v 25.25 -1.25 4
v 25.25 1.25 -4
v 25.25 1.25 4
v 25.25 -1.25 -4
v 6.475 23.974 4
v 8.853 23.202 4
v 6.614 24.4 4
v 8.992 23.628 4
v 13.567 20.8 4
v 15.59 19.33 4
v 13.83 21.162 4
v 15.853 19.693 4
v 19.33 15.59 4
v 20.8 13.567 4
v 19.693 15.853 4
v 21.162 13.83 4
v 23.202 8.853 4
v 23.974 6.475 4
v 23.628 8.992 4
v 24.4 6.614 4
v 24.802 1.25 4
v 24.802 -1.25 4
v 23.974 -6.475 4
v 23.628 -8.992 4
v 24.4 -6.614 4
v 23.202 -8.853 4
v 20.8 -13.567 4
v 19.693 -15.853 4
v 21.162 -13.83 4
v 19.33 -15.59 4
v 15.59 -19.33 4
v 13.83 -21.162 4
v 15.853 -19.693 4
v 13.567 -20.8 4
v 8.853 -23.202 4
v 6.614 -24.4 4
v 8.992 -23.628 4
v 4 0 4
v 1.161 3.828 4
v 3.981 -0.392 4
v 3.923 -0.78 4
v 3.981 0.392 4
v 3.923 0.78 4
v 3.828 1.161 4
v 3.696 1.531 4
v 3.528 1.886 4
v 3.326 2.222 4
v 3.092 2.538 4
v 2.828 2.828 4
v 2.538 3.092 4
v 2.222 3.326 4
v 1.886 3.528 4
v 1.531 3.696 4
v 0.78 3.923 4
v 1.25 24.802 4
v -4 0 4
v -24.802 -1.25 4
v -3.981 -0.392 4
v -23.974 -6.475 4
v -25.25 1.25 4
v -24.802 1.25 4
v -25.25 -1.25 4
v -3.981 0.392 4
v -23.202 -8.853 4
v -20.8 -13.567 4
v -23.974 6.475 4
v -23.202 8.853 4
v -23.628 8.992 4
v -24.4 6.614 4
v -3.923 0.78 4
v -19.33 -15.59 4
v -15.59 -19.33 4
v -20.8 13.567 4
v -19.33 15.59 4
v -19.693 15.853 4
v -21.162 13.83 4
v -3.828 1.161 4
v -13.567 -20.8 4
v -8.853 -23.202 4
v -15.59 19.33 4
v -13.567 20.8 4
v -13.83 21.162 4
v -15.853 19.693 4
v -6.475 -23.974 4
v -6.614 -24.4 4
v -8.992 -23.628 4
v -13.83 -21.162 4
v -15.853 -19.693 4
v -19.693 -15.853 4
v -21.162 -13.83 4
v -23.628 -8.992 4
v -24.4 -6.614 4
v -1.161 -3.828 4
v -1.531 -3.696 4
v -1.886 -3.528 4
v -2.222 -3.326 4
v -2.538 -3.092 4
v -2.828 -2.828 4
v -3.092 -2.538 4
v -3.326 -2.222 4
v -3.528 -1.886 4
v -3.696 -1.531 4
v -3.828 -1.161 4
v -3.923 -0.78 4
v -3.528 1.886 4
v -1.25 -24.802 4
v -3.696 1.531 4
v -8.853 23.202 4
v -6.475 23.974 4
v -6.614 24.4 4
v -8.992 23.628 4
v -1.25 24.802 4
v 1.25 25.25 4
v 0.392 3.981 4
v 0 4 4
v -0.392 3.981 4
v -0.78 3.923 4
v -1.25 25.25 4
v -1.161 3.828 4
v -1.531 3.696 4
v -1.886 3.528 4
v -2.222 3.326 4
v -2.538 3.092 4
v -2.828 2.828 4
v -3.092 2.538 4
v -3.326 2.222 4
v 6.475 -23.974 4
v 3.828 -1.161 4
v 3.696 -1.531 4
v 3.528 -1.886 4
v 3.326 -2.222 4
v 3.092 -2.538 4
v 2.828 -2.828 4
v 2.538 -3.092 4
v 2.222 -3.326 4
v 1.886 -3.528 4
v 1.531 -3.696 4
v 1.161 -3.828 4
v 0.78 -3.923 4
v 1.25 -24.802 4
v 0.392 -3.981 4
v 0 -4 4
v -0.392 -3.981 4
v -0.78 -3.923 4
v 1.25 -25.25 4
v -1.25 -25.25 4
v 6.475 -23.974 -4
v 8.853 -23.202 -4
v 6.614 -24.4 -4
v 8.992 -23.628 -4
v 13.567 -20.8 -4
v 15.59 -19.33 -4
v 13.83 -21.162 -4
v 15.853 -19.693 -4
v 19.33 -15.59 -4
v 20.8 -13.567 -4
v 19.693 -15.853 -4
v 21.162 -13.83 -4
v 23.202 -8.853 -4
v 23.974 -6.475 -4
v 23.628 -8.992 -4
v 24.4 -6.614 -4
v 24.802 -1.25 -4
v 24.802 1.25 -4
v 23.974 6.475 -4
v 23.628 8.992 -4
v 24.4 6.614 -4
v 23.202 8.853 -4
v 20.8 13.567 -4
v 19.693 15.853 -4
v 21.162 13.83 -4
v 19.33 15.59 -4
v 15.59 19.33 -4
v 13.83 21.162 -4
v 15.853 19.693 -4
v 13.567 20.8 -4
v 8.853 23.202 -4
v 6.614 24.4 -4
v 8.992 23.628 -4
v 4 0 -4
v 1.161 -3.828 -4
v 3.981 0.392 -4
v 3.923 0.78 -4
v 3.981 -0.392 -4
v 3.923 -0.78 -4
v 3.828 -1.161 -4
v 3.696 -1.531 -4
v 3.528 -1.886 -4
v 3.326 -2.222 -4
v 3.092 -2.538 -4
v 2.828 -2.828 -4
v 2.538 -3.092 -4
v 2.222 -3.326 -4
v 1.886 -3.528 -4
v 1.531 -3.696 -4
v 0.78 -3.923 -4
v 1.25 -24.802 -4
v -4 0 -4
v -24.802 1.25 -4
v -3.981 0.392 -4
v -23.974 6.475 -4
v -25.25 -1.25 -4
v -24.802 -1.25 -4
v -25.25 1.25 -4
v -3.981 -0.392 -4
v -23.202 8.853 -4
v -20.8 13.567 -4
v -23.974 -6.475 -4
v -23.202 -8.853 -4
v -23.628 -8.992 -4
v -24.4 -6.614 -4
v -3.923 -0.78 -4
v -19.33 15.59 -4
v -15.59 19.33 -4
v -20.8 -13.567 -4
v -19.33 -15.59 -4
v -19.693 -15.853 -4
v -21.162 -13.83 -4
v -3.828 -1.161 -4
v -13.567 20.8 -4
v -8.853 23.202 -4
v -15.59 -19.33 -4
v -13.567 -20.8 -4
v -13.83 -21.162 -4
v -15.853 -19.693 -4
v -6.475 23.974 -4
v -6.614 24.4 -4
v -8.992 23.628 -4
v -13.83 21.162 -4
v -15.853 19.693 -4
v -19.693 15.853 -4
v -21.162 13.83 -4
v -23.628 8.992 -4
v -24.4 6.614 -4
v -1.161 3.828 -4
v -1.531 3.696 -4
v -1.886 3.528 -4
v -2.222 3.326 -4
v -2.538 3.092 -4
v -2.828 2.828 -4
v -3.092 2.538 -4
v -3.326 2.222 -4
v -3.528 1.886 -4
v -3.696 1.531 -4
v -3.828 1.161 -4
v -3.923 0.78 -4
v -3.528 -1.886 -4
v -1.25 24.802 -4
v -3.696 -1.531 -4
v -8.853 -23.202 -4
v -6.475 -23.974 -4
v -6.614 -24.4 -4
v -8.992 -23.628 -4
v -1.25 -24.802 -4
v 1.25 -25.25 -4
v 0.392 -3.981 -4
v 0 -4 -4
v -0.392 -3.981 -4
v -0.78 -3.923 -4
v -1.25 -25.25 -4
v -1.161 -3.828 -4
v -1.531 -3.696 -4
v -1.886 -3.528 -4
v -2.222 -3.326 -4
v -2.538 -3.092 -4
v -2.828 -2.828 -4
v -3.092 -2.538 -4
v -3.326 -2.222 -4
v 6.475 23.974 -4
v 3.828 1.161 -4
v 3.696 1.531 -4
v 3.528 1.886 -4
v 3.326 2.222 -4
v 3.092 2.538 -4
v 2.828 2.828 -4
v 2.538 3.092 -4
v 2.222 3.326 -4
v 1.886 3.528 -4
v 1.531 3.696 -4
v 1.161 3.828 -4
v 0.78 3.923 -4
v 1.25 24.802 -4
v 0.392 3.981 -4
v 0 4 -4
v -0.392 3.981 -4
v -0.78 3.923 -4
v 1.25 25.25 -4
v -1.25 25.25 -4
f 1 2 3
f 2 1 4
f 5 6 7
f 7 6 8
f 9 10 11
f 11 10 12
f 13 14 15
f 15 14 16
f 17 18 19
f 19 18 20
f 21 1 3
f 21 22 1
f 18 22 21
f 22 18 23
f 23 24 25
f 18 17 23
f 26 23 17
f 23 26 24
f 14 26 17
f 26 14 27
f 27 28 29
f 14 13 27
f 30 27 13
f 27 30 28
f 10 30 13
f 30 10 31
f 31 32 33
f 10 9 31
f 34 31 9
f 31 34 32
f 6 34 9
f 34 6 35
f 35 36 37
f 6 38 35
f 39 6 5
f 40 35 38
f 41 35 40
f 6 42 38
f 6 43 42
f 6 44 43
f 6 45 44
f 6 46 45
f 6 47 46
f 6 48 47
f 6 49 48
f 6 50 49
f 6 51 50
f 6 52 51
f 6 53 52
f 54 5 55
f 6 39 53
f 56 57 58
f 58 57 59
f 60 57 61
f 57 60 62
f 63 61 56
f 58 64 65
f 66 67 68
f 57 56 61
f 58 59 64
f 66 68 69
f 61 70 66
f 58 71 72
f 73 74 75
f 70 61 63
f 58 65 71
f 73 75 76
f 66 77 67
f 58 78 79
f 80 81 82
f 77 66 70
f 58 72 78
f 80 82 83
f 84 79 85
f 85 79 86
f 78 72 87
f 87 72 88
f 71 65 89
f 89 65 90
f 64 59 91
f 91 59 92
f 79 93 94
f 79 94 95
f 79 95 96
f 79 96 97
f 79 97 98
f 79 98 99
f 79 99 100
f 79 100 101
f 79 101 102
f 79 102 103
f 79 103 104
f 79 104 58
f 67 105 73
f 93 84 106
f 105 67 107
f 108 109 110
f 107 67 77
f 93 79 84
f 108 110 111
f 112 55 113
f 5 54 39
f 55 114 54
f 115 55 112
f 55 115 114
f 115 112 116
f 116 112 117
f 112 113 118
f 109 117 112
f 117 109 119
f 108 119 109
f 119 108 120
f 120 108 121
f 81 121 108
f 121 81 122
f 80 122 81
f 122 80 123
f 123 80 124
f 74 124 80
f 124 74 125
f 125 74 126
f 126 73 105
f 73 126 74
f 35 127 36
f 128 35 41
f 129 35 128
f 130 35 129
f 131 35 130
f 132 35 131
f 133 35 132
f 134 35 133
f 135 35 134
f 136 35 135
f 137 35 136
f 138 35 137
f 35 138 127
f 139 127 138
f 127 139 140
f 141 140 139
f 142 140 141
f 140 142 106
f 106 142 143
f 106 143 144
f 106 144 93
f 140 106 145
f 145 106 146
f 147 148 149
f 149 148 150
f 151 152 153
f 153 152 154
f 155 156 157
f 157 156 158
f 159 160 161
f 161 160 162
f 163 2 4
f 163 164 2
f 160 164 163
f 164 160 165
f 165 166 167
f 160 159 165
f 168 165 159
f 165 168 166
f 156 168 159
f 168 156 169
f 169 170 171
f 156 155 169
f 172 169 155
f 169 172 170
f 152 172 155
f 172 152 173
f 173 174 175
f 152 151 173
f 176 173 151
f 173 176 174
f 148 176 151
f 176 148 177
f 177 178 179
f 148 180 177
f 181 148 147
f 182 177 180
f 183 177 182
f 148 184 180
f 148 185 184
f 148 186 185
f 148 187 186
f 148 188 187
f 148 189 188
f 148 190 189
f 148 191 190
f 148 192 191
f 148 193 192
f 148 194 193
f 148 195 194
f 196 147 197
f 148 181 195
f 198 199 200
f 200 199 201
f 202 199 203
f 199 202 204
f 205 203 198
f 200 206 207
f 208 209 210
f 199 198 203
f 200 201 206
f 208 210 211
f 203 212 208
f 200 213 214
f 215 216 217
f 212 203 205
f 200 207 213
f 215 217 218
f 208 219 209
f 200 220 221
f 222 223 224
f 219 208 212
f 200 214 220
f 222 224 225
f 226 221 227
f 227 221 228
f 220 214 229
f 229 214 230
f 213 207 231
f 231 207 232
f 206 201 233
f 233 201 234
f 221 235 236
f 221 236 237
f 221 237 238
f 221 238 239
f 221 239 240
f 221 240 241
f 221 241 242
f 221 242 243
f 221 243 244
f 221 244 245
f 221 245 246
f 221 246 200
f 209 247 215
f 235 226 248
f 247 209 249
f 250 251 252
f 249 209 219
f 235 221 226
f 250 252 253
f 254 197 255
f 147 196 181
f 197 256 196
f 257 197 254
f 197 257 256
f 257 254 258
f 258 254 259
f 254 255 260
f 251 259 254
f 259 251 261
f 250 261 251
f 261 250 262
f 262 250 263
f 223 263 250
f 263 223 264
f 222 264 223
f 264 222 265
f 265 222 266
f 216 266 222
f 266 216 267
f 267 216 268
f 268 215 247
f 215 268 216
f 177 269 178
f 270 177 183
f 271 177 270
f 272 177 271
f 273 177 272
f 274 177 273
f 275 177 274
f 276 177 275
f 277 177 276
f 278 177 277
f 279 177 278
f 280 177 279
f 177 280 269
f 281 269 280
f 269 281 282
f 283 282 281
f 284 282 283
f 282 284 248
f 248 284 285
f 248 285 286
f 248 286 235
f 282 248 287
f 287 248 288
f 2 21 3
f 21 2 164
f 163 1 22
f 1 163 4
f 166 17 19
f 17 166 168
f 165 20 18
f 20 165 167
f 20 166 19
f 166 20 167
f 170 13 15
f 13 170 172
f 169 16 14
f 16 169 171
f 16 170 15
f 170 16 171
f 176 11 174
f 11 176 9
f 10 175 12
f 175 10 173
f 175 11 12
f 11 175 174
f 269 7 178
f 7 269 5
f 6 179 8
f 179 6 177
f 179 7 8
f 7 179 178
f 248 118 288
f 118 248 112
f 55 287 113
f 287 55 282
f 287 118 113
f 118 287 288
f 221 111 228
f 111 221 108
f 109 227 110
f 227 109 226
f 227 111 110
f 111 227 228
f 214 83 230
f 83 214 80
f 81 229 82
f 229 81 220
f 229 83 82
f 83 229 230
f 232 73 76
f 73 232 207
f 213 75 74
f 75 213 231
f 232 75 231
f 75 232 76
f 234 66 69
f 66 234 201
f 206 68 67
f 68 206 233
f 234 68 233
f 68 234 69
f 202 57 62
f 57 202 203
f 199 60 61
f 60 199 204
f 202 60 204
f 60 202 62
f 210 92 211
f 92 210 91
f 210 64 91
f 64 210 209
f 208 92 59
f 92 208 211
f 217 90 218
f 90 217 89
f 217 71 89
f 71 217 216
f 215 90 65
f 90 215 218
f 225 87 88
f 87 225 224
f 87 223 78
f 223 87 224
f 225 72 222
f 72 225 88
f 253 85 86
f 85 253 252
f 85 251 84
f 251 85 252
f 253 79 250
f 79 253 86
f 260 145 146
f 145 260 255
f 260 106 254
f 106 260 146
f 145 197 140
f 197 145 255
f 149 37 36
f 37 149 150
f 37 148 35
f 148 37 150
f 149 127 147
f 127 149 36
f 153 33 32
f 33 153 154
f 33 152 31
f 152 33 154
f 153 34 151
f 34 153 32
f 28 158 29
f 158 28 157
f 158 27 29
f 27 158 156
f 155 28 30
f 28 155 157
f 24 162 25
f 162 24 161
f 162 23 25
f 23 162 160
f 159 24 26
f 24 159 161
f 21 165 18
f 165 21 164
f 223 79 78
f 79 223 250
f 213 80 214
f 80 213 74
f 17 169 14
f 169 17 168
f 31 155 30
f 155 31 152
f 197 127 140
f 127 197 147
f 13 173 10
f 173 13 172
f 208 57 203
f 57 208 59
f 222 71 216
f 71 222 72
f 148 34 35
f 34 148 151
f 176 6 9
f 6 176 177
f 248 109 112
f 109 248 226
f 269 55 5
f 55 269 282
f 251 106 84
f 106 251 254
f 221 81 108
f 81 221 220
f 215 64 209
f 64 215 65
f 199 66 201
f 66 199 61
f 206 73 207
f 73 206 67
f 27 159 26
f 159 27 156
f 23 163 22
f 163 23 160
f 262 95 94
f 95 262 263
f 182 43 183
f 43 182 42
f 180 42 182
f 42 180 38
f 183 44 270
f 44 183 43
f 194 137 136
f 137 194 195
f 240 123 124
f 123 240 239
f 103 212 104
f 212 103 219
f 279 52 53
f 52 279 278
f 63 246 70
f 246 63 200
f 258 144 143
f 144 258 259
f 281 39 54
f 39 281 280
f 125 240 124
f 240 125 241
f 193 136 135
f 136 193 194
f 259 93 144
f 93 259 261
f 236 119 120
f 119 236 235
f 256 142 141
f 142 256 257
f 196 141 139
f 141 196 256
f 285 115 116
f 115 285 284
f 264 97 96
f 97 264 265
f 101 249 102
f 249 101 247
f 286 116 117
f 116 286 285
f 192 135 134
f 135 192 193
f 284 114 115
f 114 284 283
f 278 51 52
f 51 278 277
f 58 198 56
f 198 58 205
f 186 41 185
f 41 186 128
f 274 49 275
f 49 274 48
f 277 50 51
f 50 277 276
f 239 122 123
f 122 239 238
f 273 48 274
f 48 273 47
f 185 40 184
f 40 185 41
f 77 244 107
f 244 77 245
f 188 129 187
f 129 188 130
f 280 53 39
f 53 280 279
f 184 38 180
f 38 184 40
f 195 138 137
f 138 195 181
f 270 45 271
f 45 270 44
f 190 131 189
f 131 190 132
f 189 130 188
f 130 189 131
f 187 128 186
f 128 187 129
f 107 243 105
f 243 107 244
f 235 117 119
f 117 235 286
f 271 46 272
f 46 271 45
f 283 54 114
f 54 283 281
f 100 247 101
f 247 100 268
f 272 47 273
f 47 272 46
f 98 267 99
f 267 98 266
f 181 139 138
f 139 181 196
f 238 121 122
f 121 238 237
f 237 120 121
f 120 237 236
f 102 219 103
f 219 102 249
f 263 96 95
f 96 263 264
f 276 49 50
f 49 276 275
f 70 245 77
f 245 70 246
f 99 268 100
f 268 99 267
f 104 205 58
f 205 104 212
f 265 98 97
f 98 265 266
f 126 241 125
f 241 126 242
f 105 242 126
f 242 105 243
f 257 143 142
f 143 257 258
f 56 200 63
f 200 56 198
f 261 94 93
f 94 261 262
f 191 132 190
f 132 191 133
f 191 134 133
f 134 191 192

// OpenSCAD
// Generated by AgentSCAD
// Part Family: spur_gear
// Generated at: 2026-04-23T20:27:57.426Z

teeth = 20;
outer_diameter = 50;
bore_diameter = 8;
thickness = 8;
pressure_angle = 20;

module spur_gear(teeth, outer_diameter, bore_diameter, thickness, pressure_angle) {
  tooth_module = outer_diameter / teeth;
  pitch_diameter = outer_diameter - 2 * tooth_module;
  tooth_depth = tooth_module * 2.2;

  difference() {
    union() {
      cylinder(h=thickness, d=outer_diameter, $fn=teeth, center=true);
      for (i = [0:teeth-1]) {
        rotate([0, 0, i * 360 / teeth])
          translate([pitch_diameter/2, 0, 0])
            cube([tooth_depth, tooth_module, thickness], center=true);
      }
    }
    cylinder(h=thickness+2, d=bore_diameter, $fn=64, center=true);
  }
}

spur_gear(teeth, outer_diameter, bore_diameter, thickness, pressure_angle);
